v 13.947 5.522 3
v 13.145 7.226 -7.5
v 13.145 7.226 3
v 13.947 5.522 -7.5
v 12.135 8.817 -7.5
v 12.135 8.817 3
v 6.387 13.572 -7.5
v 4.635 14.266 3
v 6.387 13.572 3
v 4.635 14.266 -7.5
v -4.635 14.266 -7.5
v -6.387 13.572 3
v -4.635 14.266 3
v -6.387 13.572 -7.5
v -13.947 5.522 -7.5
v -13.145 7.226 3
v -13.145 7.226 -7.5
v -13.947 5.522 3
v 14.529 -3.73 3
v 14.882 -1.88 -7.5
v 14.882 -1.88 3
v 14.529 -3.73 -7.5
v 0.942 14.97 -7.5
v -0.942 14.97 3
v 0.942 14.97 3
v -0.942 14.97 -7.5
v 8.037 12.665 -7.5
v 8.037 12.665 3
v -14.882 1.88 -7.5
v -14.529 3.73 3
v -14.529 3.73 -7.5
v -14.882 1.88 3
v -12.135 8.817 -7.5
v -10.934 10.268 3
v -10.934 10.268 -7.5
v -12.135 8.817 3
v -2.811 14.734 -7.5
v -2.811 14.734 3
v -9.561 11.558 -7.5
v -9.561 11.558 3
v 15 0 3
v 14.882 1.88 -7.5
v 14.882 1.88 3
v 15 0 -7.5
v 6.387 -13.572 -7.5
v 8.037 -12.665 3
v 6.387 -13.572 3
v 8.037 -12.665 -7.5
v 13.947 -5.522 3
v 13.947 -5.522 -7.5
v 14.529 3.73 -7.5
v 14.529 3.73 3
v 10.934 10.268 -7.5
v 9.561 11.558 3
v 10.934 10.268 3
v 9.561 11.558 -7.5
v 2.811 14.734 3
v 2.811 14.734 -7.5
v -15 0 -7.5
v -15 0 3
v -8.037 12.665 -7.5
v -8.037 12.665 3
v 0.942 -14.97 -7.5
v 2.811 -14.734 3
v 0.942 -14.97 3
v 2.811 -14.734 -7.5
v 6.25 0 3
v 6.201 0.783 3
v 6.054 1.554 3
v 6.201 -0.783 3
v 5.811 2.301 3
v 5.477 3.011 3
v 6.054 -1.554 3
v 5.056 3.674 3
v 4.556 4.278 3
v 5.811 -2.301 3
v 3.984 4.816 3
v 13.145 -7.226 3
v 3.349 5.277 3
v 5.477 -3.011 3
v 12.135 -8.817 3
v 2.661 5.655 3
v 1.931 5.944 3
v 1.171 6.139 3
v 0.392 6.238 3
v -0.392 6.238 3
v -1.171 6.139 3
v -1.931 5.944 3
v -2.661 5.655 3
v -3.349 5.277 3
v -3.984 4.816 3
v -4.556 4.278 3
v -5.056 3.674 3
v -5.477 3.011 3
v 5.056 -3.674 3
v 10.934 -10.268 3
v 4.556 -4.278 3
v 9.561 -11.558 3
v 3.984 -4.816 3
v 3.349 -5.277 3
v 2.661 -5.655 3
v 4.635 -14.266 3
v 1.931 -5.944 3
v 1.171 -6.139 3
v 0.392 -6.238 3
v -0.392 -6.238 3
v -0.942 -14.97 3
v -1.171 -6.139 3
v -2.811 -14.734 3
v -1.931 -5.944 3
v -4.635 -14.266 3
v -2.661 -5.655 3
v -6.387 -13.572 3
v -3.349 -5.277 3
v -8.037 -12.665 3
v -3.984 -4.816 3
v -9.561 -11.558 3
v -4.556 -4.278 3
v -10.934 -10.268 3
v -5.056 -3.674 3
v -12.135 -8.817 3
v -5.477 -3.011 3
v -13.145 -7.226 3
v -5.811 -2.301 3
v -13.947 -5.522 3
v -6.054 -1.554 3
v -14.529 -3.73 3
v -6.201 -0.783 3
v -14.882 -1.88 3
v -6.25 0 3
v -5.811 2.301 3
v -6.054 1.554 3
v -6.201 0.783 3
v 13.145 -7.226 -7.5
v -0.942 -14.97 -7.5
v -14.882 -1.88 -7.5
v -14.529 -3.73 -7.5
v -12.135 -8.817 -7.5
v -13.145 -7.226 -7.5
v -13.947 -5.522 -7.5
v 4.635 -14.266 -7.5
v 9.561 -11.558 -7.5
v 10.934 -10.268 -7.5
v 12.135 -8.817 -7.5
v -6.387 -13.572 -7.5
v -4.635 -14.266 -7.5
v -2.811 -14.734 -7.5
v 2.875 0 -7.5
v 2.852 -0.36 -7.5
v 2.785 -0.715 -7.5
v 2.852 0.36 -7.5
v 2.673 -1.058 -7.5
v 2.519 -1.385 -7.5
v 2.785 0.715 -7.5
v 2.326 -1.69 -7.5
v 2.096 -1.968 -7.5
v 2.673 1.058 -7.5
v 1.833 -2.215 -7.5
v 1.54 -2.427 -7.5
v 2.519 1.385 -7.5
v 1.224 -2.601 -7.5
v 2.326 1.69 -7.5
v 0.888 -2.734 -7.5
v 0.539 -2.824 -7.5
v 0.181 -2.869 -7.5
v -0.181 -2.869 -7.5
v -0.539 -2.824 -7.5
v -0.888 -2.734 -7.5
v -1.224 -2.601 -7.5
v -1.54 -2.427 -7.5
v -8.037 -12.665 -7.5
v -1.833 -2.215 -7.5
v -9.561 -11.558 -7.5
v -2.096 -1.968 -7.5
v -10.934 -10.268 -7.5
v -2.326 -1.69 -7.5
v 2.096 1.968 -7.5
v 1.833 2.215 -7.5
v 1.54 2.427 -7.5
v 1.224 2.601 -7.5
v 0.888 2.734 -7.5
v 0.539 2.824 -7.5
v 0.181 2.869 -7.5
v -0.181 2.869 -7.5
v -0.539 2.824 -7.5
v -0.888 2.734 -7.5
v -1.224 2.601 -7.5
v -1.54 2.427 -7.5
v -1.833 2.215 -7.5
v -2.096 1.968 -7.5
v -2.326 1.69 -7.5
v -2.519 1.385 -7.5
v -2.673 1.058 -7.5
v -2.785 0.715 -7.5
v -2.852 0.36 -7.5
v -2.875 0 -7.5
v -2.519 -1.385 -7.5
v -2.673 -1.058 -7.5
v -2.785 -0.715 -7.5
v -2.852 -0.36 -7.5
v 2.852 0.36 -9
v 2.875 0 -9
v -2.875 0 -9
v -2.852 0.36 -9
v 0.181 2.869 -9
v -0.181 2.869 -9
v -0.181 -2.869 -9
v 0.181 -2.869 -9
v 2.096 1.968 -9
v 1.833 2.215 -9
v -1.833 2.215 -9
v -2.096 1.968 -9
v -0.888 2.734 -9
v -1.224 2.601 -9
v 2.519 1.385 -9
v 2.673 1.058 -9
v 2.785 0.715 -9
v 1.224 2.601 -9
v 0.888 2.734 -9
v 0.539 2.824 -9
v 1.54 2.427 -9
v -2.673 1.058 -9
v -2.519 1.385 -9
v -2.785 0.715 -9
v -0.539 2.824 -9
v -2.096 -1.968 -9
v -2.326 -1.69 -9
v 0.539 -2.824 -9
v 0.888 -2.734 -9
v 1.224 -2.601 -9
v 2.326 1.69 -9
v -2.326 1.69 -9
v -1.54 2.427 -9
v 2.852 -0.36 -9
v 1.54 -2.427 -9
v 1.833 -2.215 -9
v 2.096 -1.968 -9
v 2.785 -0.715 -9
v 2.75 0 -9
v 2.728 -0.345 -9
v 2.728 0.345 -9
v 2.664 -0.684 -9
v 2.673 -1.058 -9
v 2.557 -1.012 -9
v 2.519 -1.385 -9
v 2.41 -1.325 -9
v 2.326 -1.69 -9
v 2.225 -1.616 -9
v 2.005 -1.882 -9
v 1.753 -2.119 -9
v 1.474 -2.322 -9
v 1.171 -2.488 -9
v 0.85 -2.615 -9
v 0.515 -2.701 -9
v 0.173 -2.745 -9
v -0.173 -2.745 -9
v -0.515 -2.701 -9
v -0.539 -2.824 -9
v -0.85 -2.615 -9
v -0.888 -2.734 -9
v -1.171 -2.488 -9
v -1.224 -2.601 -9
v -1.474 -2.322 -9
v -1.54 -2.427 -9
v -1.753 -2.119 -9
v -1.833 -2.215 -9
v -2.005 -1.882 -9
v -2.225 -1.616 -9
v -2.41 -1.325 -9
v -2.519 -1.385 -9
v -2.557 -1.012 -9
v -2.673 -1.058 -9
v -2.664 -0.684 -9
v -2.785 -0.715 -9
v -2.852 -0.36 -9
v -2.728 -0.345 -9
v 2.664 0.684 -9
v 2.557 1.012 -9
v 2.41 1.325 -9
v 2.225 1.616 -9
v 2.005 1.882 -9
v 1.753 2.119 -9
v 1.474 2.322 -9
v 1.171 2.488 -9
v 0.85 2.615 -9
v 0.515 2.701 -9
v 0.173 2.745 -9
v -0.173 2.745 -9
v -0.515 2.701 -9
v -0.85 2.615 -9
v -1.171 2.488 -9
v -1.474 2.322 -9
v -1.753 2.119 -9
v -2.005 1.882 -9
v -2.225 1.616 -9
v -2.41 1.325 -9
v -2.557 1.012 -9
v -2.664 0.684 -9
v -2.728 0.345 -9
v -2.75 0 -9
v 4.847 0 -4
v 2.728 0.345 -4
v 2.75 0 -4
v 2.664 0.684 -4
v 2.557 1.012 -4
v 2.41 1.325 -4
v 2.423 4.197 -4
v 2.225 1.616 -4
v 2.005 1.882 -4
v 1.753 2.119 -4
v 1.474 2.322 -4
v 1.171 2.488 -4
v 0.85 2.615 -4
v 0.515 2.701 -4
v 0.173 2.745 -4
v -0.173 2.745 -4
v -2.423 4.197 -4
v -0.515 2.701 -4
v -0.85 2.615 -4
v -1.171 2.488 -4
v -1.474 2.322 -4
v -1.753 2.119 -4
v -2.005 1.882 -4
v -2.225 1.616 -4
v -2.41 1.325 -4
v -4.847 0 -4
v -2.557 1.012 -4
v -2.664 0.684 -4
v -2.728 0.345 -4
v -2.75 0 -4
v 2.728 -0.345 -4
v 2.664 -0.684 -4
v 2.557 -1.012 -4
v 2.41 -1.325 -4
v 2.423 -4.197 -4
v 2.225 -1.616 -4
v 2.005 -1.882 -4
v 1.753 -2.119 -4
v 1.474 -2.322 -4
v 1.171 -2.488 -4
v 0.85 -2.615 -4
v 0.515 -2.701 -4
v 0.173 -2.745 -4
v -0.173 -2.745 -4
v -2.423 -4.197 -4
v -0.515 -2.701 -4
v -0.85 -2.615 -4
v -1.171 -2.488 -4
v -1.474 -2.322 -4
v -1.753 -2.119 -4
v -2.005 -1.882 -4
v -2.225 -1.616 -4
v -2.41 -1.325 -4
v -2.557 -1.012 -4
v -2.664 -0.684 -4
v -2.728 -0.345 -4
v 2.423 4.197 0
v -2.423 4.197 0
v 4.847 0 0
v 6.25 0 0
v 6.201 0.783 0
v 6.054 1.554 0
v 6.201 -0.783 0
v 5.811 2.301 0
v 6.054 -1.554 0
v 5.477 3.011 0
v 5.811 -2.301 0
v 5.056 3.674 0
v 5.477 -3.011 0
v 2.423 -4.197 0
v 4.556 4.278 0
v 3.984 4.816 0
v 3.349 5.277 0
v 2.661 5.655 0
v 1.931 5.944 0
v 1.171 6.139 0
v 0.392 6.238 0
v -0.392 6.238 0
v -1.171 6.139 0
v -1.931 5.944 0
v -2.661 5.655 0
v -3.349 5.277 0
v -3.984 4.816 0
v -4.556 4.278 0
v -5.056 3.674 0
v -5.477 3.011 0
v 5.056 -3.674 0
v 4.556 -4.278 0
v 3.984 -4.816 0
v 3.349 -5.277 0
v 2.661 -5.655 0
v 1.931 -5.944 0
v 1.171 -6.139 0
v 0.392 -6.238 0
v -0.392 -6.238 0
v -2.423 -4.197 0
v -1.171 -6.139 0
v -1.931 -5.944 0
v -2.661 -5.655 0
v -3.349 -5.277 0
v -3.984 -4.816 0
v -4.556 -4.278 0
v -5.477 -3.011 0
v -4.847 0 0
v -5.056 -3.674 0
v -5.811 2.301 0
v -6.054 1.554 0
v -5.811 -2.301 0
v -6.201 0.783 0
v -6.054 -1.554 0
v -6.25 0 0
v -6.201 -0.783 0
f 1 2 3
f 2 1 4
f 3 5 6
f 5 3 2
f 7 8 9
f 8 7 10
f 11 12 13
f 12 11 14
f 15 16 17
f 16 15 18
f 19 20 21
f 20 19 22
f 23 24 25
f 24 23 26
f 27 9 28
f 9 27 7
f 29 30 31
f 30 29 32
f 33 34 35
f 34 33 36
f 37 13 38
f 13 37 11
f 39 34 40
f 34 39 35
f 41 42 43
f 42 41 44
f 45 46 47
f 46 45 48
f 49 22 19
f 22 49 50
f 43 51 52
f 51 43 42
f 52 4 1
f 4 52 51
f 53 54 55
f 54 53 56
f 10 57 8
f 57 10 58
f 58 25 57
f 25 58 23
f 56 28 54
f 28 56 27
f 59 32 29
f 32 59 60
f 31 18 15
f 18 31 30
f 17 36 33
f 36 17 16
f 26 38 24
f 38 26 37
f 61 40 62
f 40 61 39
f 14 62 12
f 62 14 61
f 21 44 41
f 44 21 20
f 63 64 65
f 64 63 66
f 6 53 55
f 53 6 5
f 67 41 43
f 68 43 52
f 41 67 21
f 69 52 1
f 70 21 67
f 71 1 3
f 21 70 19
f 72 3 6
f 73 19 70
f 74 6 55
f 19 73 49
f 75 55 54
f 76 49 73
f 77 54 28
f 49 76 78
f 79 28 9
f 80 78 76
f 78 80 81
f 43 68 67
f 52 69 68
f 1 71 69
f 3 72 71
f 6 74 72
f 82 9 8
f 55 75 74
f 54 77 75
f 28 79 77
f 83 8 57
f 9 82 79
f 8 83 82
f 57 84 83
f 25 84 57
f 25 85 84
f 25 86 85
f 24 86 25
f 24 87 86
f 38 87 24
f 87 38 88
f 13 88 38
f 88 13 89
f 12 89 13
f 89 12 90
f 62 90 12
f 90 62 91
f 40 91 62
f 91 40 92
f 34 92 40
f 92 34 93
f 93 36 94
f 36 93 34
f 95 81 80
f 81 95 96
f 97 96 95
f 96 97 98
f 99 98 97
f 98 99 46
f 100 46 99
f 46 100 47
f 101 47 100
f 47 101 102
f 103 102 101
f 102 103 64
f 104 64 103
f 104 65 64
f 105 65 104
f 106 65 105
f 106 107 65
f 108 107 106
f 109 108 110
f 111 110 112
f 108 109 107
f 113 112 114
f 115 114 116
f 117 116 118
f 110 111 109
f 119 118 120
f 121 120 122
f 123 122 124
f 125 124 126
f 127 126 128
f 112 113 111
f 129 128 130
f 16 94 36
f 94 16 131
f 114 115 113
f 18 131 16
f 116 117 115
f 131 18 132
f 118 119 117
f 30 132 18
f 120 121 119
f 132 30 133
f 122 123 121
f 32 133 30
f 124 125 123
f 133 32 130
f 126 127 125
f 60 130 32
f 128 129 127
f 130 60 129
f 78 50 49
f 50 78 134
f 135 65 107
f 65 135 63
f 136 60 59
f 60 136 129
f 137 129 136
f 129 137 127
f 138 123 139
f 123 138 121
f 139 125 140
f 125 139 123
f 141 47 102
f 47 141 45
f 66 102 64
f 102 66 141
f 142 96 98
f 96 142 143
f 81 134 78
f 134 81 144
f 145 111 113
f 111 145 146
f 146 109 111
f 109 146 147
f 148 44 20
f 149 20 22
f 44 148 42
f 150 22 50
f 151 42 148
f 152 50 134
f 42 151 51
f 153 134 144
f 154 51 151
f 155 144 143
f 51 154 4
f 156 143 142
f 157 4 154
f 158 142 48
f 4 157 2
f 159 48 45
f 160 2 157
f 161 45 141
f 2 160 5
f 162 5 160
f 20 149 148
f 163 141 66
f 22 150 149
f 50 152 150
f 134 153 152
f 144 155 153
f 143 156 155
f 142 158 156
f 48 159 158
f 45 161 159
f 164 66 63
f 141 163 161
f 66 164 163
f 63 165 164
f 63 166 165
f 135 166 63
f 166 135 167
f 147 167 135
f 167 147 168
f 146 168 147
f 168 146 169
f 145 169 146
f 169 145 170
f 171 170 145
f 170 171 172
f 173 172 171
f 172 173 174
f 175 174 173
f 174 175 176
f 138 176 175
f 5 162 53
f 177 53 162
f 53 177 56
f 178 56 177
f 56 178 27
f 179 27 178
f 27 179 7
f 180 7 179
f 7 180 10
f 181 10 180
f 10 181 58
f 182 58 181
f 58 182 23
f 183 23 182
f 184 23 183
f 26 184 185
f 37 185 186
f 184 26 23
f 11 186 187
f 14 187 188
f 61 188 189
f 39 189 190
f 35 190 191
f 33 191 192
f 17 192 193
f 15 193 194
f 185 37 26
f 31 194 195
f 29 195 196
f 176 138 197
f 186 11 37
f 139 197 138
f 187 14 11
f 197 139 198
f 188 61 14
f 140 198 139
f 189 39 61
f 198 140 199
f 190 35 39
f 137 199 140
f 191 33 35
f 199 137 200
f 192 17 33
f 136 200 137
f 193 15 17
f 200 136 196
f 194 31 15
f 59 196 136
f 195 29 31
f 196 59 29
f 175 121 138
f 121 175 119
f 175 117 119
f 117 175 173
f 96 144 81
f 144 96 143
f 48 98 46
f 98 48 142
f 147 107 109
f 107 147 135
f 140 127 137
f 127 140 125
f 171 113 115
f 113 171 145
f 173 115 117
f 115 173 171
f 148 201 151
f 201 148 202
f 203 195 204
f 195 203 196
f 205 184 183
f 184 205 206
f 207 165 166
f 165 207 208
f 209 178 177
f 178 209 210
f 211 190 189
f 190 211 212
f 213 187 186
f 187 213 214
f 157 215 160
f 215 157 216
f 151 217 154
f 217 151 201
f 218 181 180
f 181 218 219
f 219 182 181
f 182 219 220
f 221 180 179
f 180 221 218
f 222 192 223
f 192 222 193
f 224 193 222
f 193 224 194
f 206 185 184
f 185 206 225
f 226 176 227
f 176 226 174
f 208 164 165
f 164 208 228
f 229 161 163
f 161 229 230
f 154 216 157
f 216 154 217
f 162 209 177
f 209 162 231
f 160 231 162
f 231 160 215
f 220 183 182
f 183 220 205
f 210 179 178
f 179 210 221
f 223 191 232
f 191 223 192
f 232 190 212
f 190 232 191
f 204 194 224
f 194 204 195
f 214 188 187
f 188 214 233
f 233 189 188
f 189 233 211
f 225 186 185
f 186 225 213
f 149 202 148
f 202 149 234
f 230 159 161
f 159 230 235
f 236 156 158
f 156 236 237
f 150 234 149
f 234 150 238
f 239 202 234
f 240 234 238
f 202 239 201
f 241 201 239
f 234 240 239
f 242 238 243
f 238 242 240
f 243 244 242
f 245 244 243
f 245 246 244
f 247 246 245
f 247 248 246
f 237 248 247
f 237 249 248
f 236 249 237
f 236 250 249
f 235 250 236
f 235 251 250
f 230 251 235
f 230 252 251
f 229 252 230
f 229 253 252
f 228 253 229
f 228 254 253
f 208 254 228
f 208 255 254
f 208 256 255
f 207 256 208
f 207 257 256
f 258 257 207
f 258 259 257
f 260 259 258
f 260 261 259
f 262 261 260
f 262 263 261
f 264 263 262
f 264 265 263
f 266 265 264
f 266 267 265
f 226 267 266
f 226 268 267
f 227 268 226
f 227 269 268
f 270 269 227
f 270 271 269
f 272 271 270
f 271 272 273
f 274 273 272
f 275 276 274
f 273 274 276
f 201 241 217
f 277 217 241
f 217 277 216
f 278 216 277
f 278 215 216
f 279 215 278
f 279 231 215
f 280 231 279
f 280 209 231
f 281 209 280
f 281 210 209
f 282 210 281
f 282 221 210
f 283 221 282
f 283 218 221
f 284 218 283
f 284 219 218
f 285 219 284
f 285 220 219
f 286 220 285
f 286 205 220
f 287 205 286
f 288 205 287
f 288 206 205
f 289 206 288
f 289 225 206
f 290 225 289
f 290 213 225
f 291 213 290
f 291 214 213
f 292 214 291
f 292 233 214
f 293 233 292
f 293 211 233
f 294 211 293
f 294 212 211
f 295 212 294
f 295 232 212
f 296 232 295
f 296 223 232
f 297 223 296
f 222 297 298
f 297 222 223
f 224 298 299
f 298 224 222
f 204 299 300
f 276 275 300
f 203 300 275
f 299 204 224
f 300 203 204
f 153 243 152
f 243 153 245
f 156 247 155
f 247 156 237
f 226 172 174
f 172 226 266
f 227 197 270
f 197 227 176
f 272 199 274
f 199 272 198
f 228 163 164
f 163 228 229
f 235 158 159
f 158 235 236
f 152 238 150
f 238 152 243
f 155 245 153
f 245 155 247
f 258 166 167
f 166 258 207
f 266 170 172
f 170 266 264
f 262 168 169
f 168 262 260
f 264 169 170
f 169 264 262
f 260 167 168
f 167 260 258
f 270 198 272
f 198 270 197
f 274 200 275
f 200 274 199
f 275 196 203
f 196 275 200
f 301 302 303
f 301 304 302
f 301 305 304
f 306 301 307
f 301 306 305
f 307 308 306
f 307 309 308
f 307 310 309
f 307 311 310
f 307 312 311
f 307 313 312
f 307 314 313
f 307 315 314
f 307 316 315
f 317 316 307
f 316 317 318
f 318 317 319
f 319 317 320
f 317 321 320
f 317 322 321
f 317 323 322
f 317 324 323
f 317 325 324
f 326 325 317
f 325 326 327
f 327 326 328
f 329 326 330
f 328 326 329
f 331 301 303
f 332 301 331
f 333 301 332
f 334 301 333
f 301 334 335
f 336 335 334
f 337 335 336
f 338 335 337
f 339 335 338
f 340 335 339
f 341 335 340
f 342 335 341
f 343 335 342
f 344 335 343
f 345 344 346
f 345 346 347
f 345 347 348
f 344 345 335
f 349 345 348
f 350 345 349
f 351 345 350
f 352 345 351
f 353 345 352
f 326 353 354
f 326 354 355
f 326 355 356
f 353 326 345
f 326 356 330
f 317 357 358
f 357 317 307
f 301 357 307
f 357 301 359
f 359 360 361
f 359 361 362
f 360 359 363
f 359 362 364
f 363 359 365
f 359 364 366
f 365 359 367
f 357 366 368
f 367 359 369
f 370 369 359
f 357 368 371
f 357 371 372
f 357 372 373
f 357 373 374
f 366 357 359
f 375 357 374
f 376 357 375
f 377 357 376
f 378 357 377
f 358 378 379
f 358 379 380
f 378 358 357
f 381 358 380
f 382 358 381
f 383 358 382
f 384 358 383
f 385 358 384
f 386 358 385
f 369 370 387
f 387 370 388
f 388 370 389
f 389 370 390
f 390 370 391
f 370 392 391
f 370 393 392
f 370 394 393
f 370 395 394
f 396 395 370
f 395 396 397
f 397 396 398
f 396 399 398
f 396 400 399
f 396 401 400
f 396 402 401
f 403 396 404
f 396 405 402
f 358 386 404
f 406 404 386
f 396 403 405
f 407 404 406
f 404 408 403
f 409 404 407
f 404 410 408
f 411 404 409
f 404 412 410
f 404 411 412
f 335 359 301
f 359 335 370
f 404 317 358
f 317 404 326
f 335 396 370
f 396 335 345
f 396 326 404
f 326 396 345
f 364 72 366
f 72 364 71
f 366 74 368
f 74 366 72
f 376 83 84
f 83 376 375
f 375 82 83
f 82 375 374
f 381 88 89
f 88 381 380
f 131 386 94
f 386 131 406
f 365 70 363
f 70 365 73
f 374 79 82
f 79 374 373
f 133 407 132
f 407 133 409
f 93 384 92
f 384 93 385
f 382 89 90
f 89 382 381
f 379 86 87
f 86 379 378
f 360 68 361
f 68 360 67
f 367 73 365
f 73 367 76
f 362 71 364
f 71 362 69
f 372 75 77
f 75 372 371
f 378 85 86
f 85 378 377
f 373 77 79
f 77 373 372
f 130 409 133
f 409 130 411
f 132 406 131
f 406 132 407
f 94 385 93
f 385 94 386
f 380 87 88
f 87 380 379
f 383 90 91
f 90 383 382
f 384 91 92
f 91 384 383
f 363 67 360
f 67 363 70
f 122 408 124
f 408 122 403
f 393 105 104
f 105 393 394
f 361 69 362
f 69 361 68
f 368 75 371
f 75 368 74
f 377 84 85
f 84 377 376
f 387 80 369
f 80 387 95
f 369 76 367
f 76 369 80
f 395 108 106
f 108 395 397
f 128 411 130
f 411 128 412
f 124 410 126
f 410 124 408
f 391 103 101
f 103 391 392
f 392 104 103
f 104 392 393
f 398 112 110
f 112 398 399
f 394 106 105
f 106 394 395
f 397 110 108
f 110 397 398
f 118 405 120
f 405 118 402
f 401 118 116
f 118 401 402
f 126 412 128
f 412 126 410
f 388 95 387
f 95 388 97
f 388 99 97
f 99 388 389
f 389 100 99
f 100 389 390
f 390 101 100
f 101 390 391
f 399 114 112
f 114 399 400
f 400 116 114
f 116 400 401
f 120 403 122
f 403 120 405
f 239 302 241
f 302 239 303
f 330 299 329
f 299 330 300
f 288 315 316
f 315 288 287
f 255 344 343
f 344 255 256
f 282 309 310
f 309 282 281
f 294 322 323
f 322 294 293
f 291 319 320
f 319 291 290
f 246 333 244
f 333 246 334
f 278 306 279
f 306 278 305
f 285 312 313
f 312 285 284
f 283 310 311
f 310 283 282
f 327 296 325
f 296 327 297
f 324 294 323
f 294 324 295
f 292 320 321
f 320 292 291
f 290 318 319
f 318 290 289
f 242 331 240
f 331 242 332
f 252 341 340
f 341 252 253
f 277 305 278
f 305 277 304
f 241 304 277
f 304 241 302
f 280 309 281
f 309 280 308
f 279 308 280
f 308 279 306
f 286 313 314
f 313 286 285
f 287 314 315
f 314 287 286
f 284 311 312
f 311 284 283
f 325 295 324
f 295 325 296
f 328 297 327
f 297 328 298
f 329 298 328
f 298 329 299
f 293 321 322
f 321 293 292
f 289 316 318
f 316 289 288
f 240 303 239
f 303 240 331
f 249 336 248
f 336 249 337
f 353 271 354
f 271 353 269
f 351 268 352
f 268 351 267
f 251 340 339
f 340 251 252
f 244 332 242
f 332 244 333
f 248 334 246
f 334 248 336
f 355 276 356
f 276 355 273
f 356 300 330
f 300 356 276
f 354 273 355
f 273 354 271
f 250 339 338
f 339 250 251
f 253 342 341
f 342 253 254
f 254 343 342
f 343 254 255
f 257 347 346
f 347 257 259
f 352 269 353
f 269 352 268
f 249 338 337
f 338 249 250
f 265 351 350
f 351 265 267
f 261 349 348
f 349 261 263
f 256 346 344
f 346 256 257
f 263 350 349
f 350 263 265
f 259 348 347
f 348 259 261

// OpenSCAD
$fn = 50;


difference() {
	union() {
		translate(v = [0, 0, -7.5000000000]) {
			cylinder(h = 10.5000000000, r = 15.0000000000);
		}
		#translate(v = [0, 0, -9.0000000000]) {
			cylinder(h = 9, r = 2.8750000000);
		}
	}
	union() {
		translate(v = [0, 0, 0]) {
			rotate(a = [0, 0, 0]) {
				difference() {
					union() {
						translate(v = [0, 0, -4]) {
							linear_extrude(height = 4) {
								polygon(points = [[4.8468000000, 0.0000000000], [2.4234000000, 4.1974519271], [-2.4234000000, 4.1974519271], [-4.8468000000, 0.0000000000], [-2.4234000000, -4.1974519271], [2.4234000000, -4.1974519271]]);
							}
						}
					}
					union();
				}
			}
		}
		#cylinder(h = 3, r = 6.2500000000);
		#translate(v = [0, 0, -100.0000000000]) {
			cylinder(h = 200, r = 2.7500000000);
		}
	}
}
